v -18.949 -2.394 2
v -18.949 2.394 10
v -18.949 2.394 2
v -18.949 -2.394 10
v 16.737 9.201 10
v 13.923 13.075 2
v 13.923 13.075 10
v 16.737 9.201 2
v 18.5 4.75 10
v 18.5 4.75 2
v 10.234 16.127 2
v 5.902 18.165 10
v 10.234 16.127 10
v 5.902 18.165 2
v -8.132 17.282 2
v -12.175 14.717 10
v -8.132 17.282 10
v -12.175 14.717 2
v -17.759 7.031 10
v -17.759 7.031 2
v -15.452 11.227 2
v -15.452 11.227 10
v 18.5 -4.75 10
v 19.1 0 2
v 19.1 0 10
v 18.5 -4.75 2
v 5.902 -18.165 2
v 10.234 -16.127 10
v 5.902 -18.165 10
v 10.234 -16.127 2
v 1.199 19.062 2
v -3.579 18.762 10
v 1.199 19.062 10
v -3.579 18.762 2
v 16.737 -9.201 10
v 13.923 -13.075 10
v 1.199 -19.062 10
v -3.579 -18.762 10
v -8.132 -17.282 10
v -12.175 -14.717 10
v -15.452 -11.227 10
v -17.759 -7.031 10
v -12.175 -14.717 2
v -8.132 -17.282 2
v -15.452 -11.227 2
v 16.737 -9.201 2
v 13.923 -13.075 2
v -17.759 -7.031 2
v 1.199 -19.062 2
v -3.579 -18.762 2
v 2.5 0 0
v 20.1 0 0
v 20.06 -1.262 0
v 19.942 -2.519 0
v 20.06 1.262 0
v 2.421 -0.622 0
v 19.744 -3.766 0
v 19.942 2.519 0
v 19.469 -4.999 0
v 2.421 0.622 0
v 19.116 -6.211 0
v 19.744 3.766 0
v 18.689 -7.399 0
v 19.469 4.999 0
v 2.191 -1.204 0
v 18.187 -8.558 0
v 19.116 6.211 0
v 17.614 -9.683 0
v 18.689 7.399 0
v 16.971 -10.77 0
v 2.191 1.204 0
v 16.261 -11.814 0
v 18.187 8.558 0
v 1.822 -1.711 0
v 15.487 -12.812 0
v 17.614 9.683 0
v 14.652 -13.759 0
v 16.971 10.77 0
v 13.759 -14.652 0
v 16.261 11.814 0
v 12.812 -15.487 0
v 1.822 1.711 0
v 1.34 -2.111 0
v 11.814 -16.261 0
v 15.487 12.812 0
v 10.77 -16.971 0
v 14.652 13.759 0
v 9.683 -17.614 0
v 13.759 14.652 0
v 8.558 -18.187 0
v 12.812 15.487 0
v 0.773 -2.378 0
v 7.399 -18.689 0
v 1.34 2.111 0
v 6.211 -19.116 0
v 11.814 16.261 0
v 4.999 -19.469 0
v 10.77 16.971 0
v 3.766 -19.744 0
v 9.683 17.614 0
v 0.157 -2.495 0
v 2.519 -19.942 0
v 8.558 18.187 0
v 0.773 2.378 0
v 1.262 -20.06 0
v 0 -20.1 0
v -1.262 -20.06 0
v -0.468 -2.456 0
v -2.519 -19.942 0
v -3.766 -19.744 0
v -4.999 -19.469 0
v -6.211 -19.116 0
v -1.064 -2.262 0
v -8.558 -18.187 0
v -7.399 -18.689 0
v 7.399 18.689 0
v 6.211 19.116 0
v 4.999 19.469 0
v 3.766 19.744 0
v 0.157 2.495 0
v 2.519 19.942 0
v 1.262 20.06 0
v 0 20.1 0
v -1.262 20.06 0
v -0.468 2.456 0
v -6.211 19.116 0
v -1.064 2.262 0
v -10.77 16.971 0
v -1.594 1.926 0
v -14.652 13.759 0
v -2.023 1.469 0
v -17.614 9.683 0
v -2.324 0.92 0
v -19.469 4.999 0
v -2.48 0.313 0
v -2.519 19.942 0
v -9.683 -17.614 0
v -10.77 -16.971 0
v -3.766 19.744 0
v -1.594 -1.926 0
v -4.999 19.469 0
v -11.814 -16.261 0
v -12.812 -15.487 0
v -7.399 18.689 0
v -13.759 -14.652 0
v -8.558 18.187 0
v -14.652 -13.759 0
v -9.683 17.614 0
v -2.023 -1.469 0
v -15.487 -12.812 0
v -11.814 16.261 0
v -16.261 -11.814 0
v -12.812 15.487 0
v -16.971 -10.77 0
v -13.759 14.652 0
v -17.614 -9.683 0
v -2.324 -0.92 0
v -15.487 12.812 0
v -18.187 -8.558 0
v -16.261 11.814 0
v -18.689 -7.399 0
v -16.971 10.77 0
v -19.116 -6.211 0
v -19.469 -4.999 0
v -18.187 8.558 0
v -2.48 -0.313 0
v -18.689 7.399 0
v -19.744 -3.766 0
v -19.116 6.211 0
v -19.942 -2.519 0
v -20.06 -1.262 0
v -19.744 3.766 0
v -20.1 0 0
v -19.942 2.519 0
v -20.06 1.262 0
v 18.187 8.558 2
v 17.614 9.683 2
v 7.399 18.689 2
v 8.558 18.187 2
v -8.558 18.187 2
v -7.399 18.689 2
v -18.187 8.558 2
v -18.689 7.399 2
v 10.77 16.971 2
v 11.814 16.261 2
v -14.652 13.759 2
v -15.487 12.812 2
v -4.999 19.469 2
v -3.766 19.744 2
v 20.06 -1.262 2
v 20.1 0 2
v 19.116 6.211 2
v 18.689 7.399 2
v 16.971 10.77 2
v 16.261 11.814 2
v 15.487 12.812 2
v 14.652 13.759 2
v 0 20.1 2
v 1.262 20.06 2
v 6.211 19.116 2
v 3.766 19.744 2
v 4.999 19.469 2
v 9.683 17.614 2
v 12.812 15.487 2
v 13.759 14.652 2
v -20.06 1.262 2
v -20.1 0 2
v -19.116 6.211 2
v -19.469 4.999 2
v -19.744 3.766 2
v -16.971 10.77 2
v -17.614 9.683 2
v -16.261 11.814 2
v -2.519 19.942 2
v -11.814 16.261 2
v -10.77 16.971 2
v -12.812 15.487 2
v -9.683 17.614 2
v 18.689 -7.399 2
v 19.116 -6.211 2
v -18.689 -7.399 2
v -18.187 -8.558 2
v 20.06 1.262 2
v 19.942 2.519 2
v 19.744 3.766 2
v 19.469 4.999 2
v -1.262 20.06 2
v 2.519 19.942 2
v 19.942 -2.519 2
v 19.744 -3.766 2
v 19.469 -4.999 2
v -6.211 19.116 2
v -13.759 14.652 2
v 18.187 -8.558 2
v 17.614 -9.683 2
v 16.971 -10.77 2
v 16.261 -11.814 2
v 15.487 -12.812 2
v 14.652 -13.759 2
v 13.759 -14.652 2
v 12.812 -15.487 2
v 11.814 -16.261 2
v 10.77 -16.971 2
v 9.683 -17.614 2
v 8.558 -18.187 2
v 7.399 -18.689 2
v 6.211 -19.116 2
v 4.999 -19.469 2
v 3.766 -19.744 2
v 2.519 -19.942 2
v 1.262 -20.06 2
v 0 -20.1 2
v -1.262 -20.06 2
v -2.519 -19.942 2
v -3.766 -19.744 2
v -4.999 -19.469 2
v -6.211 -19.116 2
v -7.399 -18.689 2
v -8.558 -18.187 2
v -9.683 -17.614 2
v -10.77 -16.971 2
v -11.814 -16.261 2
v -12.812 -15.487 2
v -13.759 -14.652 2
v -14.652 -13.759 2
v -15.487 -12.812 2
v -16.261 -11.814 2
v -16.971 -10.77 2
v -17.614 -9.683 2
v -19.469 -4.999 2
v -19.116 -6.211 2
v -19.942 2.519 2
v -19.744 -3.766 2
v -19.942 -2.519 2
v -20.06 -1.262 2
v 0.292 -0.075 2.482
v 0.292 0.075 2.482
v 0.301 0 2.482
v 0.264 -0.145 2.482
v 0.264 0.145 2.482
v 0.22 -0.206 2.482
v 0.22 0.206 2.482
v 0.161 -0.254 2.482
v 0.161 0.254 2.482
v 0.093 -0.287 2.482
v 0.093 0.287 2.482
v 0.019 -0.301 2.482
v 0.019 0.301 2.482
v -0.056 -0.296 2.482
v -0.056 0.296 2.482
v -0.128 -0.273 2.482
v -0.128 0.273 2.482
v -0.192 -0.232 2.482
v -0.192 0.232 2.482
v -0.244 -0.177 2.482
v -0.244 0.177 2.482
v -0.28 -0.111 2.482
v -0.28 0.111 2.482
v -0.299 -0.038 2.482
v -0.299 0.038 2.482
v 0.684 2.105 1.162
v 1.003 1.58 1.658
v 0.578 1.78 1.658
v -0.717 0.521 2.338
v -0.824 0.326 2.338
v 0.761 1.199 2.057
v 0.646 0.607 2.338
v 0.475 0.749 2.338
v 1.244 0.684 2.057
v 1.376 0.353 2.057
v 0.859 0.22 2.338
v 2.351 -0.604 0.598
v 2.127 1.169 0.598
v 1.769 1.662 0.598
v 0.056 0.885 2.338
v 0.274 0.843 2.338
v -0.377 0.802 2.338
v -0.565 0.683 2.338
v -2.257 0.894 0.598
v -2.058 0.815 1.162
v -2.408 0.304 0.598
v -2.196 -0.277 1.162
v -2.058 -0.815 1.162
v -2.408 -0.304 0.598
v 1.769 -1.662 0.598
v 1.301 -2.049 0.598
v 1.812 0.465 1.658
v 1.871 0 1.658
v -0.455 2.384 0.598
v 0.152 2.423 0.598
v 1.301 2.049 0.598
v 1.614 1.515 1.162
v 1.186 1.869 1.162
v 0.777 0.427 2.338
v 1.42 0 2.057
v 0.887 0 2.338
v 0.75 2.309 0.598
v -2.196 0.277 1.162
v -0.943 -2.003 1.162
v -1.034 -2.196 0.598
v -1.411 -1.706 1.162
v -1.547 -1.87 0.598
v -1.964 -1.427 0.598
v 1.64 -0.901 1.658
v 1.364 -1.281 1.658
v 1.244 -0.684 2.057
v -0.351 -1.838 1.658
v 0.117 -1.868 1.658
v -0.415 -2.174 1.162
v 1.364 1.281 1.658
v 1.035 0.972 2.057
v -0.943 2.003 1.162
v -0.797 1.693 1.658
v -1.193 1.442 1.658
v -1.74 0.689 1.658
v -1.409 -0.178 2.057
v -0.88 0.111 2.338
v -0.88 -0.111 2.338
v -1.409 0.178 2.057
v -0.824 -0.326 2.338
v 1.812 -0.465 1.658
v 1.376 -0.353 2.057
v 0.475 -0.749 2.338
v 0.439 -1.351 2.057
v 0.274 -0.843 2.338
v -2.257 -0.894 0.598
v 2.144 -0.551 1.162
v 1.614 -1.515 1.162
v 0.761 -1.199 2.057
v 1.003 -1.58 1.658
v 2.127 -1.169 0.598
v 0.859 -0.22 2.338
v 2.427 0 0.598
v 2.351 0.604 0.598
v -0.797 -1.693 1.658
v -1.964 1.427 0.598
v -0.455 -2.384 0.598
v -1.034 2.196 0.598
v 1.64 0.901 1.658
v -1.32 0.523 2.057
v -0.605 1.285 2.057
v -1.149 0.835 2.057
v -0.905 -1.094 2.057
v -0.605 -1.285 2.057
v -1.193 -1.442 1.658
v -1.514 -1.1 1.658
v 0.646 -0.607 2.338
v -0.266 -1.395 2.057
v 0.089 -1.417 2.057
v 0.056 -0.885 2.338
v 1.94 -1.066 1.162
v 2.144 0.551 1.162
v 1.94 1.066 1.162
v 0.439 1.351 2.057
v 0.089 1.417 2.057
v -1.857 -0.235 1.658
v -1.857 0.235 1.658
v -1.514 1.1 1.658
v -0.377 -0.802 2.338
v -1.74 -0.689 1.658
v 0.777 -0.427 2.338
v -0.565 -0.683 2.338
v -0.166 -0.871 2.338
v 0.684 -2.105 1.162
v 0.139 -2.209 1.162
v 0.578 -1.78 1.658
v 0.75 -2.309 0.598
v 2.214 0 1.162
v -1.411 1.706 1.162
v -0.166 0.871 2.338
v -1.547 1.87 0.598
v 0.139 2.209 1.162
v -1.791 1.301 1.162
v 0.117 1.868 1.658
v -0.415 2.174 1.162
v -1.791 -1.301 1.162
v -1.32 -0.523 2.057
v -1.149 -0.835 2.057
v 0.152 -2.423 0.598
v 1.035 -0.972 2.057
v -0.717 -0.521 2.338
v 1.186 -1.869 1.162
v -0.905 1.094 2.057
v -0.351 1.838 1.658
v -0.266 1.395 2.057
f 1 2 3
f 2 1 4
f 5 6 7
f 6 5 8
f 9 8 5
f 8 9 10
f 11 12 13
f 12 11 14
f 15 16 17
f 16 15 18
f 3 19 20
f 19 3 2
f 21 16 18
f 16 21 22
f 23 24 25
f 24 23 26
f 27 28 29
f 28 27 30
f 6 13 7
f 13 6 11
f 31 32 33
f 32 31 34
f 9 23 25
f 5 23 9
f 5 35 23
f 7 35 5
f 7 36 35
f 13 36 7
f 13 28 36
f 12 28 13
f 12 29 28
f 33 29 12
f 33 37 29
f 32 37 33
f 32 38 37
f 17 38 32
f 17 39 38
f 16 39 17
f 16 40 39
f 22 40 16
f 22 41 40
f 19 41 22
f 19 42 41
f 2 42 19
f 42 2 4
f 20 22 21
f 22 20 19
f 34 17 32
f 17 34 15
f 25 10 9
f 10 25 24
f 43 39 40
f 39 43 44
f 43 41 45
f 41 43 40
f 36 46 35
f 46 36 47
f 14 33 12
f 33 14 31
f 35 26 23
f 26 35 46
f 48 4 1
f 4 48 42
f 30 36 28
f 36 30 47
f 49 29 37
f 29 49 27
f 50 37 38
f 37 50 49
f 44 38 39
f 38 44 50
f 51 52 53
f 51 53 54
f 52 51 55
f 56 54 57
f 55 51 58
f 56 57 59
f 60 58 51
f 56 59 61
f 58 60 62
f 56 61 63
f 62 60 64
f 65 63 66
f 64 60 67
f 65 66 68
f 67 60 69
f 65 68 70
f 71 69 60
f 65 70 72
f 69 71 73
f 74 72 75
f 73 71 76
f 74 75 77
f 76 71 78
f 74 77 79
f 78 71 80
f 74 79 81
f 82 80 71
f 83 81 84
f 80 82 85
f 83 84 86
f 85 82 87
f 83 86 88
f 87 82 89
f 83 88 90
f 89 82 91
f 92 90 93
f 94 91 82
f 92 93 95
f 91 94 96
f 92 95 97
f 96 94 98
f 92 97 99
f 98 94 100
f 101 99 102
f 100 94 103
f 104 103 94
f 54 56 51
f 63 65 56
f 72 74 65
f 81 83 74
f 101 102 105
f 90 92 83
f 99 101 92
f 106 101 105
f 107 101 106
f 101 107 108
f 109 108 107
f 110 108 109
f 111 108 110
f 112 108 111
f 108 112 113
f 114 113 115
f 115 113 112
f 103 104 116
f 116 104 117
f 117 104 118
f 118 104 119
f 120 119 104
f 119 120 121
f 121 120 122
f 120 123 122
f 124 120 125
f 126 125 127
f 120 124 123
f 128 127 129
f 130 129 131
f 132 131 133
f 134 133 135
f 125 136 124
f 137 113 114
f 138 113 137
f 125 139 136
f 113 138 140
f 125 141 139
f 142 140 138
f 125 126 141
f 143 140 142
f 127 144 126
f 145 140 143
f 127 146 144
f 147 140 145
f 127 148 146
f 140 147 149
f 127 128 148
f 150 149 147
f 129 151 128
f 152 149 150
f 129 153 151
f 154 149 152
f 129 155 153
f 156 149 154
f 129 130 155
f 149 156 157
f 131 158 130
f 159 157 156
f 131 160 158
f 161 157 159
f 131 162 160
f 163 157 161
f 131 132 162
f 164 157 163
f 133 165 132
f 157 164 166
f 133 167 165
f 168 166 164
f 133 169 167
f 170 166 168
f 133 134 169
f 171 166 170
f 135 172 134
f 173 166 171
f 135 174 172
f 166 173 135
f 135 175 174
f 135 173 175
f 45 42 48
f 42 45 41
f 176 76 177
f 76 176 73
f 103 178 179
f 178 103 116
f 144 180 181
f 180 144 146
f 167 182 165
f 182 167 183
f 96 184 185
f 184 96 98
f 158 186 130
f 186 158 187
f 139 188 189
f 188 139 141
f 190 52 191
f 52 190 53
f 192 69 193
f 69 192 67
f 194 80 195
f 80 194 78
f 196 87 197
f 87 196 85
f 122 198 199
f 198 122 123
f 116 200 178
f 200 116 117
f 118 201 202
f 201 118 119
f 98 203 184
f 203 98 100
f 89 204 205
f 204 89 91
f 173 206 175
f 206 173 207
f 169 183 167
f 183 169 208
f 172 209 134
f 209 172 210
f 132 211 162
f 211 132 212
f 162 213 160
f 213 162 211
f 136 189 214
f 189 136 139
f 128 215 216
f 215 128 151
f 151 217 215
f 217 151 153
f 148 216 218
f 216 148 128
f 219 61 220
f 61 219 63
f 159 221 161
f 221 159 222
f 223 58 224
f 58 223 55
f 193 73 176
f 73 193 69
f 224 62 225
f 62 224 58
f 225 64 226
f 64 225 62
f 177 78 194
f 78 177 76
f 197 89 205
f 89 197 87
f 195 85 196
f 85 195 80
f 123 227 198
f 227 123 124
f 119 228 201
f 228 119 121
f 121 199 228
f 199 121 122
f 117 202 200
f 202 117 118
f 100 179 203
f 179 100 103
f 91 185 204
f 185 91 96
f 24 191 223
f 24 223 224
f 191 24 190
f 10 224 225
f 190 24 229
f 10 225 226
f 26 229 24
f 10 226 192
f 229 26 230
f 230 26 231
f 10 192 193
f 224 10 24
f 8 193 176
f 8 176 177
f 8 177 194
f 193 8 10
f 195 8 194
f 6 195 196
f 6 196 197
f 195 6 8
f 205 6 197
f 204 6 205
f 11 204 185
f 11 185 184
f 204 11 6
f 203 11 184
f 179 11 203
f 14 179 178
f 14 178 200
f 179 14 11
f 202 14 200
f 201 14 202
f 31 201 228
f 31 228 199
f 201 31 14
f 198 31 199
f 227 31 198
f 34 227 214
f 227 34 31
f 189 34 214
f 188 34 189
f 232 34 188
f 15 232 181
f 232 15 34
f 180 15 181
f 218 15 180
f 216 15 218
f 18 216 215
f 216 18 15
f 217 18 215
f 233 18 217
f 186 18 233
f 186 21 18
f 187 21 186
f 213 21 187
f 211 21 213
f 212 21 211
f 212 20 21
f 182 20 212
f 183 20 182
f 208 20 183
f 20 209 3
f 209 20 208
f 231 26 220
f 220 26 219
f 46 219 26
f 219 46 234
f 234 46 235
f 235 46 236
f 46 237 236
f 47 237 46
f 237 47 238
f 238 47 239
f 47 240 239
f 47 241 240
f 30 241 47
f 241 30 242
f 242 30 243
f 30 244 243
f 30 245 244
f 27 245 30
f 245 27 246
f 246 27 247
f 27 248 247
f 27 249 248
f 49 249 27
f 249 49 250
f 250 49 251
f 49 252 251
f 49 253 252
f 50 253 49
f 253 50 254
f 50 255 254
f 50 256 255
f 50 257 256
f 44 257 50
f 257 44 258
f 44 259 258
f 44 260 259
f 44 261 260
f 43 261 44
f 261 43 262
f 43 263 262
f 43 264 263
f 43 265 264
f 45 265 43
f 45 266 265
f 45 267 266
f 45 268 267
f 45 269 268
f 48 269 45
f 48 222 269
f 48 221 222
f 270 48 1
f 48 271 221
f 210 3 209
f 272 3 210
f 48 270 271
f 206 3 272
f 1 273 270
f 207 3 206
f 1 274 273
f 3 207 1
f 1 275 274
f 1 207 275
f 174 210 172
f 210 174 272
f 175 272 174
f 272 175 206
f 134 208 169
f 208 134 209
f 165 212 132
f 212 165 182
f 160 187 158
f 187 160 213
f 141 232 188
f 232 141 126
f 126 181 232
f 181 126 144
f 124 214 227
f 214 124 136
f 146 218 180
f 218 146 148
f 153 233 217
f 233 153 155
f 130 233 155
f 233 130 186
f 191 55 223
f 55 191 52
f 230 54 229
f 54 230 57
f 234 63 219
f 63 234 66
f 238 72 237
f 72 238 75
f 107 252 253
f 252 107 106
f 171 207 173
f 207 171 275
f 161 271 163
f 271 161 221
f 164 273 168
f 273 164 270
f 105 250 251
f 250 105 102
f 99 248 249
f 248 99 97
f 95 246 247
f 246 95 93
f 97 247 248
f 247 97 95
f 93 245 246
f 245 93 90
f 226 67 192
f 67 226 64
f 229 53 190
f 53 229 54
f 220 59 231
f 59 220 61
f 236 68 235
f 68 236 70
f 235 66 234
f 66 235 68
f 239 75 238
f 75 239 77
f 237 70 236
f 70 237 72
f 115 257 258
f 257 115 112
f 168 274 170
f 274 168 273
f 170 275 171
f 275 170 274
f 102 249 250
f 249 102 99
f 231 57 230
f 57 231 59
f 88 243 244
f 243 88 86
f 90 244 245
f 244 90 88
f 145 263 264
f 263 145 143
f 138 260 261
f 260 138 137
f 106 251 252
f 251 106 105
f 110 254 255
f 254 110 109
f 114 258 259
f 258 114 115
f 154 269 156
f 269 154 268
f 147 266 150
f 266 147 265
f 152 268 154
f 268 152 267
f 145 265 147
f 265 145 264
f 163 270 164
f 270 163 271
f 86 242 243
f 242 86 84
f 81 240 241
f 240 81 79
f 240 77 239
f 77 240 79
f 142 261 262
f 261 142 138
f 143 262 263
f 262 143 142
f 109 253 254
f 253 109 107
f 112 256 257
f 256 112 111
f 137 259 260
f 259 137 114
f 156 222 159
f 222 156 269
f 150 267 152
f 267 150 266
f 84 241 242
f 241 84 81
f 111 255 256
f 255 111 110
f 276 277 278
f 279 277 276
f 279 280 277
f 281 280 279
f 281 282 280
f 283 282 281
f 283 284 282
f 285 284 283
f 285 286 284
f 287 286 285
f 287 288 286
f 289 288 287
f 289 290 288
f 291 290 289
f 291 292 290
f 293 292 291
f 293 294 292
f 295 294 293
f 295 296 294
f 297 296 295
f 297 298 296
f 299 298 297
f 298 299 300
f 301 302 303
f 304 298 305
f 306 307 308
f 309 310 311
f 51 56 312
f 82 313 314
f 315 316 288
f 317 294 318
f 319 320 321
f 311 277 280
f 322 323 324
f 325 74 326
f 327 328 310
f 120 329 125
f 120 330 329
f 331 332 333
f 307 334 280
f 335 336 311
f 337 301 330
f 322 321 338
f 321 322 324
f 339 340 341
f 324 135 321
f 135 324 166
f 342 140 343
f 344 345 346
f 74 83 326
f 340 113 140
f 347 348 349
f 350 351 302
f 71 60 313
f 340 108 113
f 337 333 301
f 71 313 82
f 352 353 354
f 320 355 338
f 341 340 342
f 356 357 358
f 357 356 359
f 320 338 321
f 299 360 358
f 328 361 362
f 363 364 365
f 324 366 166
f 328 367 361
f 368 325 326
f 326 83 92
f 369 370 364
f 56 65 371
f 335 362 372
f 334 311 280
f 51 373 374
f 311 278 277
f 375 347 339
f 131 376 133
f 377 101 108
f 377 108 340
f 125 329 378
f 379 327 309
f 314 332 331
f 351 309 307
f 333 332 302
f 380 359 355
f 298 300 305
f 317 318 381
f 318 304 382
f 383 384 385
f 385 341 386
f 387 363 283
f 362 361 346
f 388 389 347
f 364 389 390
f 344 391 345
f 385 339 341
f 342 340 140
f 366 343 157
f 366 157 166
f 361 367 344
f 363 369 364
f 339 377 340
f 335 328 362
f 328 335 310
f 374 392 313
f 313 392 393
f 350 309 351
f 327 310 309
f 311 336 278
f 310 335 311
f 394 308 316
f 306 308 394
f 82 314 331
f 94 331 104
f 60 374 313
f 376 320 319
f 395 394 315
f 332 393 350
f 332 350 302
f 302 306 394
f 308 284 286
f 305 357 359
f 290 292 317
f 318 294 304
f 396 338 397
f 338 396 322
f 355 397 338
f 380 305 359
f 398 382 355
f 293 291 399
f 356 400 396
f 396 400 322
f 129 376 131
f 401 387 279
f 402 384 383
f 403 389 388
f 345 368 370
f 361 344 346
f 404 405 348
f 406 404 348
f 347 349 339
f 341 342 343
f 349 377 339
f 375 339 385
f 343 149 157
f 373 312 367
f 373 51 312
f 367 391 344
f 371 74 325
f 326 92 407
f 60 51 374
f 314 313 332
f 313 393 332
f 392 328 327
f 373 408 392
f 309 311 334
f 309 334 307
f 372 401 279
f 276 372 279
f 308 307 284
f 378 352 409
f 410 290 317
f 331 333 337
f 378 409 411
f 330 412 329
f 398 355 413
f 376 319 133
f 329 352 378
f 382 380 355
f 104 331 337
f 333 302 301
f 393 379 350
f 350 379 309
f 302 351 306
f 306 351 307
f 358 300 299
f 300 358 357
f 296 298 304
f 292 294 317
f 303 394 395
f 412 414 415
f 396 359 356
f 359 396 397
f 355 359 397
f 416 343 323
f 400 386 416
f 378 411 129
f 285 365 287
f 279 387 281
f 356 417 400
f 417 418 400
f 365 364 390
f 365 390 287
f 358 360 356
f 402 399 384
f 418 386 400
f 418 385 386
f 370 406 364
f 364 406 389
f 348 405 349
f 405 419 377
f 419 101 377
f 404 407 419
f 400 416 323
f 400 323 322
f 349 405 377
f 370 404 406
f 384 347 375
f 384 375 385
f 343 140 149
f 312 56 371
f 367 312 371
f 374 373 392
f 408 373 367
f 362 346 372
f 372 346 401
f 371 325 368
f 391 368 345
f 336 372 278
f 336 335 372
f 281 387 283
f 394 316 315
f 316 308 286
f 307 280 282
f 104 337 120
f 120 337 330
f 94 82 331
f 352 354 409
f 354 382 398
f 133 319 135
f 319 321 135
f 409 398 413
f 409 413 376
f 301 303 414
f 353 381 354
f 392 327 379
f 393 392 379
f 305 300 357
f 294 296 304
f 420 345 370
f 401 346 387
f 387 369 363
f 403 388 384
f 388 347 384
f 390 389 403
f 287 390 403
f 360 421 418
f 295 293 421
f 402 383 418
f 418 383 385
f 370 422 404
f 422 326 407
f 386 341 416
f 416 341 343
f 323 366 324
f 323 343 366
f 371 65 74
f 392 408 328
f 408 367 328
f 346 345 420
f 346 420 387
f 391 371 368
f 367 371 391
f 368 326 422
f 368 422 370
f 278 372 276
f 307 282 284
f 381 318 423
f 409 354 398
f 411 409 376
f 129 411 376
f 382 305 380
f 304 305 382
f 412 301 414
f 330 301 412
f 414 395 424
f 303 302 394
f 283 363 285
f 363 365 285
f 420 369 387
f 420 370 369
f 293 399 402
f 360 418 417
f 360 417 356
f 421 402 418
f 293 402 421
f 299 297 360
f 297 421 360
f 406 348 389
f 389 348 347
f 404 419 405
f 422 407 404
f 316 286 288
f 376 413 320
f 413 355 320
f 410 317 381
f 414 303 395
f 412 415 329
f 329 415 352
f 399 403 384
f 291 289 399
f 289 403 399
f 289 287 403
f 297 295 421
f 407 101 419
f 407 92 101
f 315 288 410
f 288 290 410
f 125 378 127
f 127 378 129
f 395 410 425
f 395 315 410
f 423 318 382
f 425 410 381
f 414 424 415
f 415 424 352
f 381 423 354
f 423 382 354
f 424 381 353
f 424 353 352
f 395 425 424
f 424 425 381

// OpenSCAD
/* [Lint Roll] */
///////////////////////////////////////////////////////////////////
// The inner diameter of the cardboard tube (in mm).
$rollerTubeDiameter = 38.2;

{}
/* [Misc. properties] */
// The size in mm for the pins on the end of the tubes (in mm).
$pinSizeForTubeEnds = 5; // [3:6]

difference(){
    group(){
        cylinder($fn=25, h = 10, d = $rollerTubeDiameter);
        cylinder($fn=100, h = 2, d = $rollerTubeDiameter+2);
    }
    
    color("green")
    sphere($fn = 25, d = $pinSizeForTubeEnds);
}
